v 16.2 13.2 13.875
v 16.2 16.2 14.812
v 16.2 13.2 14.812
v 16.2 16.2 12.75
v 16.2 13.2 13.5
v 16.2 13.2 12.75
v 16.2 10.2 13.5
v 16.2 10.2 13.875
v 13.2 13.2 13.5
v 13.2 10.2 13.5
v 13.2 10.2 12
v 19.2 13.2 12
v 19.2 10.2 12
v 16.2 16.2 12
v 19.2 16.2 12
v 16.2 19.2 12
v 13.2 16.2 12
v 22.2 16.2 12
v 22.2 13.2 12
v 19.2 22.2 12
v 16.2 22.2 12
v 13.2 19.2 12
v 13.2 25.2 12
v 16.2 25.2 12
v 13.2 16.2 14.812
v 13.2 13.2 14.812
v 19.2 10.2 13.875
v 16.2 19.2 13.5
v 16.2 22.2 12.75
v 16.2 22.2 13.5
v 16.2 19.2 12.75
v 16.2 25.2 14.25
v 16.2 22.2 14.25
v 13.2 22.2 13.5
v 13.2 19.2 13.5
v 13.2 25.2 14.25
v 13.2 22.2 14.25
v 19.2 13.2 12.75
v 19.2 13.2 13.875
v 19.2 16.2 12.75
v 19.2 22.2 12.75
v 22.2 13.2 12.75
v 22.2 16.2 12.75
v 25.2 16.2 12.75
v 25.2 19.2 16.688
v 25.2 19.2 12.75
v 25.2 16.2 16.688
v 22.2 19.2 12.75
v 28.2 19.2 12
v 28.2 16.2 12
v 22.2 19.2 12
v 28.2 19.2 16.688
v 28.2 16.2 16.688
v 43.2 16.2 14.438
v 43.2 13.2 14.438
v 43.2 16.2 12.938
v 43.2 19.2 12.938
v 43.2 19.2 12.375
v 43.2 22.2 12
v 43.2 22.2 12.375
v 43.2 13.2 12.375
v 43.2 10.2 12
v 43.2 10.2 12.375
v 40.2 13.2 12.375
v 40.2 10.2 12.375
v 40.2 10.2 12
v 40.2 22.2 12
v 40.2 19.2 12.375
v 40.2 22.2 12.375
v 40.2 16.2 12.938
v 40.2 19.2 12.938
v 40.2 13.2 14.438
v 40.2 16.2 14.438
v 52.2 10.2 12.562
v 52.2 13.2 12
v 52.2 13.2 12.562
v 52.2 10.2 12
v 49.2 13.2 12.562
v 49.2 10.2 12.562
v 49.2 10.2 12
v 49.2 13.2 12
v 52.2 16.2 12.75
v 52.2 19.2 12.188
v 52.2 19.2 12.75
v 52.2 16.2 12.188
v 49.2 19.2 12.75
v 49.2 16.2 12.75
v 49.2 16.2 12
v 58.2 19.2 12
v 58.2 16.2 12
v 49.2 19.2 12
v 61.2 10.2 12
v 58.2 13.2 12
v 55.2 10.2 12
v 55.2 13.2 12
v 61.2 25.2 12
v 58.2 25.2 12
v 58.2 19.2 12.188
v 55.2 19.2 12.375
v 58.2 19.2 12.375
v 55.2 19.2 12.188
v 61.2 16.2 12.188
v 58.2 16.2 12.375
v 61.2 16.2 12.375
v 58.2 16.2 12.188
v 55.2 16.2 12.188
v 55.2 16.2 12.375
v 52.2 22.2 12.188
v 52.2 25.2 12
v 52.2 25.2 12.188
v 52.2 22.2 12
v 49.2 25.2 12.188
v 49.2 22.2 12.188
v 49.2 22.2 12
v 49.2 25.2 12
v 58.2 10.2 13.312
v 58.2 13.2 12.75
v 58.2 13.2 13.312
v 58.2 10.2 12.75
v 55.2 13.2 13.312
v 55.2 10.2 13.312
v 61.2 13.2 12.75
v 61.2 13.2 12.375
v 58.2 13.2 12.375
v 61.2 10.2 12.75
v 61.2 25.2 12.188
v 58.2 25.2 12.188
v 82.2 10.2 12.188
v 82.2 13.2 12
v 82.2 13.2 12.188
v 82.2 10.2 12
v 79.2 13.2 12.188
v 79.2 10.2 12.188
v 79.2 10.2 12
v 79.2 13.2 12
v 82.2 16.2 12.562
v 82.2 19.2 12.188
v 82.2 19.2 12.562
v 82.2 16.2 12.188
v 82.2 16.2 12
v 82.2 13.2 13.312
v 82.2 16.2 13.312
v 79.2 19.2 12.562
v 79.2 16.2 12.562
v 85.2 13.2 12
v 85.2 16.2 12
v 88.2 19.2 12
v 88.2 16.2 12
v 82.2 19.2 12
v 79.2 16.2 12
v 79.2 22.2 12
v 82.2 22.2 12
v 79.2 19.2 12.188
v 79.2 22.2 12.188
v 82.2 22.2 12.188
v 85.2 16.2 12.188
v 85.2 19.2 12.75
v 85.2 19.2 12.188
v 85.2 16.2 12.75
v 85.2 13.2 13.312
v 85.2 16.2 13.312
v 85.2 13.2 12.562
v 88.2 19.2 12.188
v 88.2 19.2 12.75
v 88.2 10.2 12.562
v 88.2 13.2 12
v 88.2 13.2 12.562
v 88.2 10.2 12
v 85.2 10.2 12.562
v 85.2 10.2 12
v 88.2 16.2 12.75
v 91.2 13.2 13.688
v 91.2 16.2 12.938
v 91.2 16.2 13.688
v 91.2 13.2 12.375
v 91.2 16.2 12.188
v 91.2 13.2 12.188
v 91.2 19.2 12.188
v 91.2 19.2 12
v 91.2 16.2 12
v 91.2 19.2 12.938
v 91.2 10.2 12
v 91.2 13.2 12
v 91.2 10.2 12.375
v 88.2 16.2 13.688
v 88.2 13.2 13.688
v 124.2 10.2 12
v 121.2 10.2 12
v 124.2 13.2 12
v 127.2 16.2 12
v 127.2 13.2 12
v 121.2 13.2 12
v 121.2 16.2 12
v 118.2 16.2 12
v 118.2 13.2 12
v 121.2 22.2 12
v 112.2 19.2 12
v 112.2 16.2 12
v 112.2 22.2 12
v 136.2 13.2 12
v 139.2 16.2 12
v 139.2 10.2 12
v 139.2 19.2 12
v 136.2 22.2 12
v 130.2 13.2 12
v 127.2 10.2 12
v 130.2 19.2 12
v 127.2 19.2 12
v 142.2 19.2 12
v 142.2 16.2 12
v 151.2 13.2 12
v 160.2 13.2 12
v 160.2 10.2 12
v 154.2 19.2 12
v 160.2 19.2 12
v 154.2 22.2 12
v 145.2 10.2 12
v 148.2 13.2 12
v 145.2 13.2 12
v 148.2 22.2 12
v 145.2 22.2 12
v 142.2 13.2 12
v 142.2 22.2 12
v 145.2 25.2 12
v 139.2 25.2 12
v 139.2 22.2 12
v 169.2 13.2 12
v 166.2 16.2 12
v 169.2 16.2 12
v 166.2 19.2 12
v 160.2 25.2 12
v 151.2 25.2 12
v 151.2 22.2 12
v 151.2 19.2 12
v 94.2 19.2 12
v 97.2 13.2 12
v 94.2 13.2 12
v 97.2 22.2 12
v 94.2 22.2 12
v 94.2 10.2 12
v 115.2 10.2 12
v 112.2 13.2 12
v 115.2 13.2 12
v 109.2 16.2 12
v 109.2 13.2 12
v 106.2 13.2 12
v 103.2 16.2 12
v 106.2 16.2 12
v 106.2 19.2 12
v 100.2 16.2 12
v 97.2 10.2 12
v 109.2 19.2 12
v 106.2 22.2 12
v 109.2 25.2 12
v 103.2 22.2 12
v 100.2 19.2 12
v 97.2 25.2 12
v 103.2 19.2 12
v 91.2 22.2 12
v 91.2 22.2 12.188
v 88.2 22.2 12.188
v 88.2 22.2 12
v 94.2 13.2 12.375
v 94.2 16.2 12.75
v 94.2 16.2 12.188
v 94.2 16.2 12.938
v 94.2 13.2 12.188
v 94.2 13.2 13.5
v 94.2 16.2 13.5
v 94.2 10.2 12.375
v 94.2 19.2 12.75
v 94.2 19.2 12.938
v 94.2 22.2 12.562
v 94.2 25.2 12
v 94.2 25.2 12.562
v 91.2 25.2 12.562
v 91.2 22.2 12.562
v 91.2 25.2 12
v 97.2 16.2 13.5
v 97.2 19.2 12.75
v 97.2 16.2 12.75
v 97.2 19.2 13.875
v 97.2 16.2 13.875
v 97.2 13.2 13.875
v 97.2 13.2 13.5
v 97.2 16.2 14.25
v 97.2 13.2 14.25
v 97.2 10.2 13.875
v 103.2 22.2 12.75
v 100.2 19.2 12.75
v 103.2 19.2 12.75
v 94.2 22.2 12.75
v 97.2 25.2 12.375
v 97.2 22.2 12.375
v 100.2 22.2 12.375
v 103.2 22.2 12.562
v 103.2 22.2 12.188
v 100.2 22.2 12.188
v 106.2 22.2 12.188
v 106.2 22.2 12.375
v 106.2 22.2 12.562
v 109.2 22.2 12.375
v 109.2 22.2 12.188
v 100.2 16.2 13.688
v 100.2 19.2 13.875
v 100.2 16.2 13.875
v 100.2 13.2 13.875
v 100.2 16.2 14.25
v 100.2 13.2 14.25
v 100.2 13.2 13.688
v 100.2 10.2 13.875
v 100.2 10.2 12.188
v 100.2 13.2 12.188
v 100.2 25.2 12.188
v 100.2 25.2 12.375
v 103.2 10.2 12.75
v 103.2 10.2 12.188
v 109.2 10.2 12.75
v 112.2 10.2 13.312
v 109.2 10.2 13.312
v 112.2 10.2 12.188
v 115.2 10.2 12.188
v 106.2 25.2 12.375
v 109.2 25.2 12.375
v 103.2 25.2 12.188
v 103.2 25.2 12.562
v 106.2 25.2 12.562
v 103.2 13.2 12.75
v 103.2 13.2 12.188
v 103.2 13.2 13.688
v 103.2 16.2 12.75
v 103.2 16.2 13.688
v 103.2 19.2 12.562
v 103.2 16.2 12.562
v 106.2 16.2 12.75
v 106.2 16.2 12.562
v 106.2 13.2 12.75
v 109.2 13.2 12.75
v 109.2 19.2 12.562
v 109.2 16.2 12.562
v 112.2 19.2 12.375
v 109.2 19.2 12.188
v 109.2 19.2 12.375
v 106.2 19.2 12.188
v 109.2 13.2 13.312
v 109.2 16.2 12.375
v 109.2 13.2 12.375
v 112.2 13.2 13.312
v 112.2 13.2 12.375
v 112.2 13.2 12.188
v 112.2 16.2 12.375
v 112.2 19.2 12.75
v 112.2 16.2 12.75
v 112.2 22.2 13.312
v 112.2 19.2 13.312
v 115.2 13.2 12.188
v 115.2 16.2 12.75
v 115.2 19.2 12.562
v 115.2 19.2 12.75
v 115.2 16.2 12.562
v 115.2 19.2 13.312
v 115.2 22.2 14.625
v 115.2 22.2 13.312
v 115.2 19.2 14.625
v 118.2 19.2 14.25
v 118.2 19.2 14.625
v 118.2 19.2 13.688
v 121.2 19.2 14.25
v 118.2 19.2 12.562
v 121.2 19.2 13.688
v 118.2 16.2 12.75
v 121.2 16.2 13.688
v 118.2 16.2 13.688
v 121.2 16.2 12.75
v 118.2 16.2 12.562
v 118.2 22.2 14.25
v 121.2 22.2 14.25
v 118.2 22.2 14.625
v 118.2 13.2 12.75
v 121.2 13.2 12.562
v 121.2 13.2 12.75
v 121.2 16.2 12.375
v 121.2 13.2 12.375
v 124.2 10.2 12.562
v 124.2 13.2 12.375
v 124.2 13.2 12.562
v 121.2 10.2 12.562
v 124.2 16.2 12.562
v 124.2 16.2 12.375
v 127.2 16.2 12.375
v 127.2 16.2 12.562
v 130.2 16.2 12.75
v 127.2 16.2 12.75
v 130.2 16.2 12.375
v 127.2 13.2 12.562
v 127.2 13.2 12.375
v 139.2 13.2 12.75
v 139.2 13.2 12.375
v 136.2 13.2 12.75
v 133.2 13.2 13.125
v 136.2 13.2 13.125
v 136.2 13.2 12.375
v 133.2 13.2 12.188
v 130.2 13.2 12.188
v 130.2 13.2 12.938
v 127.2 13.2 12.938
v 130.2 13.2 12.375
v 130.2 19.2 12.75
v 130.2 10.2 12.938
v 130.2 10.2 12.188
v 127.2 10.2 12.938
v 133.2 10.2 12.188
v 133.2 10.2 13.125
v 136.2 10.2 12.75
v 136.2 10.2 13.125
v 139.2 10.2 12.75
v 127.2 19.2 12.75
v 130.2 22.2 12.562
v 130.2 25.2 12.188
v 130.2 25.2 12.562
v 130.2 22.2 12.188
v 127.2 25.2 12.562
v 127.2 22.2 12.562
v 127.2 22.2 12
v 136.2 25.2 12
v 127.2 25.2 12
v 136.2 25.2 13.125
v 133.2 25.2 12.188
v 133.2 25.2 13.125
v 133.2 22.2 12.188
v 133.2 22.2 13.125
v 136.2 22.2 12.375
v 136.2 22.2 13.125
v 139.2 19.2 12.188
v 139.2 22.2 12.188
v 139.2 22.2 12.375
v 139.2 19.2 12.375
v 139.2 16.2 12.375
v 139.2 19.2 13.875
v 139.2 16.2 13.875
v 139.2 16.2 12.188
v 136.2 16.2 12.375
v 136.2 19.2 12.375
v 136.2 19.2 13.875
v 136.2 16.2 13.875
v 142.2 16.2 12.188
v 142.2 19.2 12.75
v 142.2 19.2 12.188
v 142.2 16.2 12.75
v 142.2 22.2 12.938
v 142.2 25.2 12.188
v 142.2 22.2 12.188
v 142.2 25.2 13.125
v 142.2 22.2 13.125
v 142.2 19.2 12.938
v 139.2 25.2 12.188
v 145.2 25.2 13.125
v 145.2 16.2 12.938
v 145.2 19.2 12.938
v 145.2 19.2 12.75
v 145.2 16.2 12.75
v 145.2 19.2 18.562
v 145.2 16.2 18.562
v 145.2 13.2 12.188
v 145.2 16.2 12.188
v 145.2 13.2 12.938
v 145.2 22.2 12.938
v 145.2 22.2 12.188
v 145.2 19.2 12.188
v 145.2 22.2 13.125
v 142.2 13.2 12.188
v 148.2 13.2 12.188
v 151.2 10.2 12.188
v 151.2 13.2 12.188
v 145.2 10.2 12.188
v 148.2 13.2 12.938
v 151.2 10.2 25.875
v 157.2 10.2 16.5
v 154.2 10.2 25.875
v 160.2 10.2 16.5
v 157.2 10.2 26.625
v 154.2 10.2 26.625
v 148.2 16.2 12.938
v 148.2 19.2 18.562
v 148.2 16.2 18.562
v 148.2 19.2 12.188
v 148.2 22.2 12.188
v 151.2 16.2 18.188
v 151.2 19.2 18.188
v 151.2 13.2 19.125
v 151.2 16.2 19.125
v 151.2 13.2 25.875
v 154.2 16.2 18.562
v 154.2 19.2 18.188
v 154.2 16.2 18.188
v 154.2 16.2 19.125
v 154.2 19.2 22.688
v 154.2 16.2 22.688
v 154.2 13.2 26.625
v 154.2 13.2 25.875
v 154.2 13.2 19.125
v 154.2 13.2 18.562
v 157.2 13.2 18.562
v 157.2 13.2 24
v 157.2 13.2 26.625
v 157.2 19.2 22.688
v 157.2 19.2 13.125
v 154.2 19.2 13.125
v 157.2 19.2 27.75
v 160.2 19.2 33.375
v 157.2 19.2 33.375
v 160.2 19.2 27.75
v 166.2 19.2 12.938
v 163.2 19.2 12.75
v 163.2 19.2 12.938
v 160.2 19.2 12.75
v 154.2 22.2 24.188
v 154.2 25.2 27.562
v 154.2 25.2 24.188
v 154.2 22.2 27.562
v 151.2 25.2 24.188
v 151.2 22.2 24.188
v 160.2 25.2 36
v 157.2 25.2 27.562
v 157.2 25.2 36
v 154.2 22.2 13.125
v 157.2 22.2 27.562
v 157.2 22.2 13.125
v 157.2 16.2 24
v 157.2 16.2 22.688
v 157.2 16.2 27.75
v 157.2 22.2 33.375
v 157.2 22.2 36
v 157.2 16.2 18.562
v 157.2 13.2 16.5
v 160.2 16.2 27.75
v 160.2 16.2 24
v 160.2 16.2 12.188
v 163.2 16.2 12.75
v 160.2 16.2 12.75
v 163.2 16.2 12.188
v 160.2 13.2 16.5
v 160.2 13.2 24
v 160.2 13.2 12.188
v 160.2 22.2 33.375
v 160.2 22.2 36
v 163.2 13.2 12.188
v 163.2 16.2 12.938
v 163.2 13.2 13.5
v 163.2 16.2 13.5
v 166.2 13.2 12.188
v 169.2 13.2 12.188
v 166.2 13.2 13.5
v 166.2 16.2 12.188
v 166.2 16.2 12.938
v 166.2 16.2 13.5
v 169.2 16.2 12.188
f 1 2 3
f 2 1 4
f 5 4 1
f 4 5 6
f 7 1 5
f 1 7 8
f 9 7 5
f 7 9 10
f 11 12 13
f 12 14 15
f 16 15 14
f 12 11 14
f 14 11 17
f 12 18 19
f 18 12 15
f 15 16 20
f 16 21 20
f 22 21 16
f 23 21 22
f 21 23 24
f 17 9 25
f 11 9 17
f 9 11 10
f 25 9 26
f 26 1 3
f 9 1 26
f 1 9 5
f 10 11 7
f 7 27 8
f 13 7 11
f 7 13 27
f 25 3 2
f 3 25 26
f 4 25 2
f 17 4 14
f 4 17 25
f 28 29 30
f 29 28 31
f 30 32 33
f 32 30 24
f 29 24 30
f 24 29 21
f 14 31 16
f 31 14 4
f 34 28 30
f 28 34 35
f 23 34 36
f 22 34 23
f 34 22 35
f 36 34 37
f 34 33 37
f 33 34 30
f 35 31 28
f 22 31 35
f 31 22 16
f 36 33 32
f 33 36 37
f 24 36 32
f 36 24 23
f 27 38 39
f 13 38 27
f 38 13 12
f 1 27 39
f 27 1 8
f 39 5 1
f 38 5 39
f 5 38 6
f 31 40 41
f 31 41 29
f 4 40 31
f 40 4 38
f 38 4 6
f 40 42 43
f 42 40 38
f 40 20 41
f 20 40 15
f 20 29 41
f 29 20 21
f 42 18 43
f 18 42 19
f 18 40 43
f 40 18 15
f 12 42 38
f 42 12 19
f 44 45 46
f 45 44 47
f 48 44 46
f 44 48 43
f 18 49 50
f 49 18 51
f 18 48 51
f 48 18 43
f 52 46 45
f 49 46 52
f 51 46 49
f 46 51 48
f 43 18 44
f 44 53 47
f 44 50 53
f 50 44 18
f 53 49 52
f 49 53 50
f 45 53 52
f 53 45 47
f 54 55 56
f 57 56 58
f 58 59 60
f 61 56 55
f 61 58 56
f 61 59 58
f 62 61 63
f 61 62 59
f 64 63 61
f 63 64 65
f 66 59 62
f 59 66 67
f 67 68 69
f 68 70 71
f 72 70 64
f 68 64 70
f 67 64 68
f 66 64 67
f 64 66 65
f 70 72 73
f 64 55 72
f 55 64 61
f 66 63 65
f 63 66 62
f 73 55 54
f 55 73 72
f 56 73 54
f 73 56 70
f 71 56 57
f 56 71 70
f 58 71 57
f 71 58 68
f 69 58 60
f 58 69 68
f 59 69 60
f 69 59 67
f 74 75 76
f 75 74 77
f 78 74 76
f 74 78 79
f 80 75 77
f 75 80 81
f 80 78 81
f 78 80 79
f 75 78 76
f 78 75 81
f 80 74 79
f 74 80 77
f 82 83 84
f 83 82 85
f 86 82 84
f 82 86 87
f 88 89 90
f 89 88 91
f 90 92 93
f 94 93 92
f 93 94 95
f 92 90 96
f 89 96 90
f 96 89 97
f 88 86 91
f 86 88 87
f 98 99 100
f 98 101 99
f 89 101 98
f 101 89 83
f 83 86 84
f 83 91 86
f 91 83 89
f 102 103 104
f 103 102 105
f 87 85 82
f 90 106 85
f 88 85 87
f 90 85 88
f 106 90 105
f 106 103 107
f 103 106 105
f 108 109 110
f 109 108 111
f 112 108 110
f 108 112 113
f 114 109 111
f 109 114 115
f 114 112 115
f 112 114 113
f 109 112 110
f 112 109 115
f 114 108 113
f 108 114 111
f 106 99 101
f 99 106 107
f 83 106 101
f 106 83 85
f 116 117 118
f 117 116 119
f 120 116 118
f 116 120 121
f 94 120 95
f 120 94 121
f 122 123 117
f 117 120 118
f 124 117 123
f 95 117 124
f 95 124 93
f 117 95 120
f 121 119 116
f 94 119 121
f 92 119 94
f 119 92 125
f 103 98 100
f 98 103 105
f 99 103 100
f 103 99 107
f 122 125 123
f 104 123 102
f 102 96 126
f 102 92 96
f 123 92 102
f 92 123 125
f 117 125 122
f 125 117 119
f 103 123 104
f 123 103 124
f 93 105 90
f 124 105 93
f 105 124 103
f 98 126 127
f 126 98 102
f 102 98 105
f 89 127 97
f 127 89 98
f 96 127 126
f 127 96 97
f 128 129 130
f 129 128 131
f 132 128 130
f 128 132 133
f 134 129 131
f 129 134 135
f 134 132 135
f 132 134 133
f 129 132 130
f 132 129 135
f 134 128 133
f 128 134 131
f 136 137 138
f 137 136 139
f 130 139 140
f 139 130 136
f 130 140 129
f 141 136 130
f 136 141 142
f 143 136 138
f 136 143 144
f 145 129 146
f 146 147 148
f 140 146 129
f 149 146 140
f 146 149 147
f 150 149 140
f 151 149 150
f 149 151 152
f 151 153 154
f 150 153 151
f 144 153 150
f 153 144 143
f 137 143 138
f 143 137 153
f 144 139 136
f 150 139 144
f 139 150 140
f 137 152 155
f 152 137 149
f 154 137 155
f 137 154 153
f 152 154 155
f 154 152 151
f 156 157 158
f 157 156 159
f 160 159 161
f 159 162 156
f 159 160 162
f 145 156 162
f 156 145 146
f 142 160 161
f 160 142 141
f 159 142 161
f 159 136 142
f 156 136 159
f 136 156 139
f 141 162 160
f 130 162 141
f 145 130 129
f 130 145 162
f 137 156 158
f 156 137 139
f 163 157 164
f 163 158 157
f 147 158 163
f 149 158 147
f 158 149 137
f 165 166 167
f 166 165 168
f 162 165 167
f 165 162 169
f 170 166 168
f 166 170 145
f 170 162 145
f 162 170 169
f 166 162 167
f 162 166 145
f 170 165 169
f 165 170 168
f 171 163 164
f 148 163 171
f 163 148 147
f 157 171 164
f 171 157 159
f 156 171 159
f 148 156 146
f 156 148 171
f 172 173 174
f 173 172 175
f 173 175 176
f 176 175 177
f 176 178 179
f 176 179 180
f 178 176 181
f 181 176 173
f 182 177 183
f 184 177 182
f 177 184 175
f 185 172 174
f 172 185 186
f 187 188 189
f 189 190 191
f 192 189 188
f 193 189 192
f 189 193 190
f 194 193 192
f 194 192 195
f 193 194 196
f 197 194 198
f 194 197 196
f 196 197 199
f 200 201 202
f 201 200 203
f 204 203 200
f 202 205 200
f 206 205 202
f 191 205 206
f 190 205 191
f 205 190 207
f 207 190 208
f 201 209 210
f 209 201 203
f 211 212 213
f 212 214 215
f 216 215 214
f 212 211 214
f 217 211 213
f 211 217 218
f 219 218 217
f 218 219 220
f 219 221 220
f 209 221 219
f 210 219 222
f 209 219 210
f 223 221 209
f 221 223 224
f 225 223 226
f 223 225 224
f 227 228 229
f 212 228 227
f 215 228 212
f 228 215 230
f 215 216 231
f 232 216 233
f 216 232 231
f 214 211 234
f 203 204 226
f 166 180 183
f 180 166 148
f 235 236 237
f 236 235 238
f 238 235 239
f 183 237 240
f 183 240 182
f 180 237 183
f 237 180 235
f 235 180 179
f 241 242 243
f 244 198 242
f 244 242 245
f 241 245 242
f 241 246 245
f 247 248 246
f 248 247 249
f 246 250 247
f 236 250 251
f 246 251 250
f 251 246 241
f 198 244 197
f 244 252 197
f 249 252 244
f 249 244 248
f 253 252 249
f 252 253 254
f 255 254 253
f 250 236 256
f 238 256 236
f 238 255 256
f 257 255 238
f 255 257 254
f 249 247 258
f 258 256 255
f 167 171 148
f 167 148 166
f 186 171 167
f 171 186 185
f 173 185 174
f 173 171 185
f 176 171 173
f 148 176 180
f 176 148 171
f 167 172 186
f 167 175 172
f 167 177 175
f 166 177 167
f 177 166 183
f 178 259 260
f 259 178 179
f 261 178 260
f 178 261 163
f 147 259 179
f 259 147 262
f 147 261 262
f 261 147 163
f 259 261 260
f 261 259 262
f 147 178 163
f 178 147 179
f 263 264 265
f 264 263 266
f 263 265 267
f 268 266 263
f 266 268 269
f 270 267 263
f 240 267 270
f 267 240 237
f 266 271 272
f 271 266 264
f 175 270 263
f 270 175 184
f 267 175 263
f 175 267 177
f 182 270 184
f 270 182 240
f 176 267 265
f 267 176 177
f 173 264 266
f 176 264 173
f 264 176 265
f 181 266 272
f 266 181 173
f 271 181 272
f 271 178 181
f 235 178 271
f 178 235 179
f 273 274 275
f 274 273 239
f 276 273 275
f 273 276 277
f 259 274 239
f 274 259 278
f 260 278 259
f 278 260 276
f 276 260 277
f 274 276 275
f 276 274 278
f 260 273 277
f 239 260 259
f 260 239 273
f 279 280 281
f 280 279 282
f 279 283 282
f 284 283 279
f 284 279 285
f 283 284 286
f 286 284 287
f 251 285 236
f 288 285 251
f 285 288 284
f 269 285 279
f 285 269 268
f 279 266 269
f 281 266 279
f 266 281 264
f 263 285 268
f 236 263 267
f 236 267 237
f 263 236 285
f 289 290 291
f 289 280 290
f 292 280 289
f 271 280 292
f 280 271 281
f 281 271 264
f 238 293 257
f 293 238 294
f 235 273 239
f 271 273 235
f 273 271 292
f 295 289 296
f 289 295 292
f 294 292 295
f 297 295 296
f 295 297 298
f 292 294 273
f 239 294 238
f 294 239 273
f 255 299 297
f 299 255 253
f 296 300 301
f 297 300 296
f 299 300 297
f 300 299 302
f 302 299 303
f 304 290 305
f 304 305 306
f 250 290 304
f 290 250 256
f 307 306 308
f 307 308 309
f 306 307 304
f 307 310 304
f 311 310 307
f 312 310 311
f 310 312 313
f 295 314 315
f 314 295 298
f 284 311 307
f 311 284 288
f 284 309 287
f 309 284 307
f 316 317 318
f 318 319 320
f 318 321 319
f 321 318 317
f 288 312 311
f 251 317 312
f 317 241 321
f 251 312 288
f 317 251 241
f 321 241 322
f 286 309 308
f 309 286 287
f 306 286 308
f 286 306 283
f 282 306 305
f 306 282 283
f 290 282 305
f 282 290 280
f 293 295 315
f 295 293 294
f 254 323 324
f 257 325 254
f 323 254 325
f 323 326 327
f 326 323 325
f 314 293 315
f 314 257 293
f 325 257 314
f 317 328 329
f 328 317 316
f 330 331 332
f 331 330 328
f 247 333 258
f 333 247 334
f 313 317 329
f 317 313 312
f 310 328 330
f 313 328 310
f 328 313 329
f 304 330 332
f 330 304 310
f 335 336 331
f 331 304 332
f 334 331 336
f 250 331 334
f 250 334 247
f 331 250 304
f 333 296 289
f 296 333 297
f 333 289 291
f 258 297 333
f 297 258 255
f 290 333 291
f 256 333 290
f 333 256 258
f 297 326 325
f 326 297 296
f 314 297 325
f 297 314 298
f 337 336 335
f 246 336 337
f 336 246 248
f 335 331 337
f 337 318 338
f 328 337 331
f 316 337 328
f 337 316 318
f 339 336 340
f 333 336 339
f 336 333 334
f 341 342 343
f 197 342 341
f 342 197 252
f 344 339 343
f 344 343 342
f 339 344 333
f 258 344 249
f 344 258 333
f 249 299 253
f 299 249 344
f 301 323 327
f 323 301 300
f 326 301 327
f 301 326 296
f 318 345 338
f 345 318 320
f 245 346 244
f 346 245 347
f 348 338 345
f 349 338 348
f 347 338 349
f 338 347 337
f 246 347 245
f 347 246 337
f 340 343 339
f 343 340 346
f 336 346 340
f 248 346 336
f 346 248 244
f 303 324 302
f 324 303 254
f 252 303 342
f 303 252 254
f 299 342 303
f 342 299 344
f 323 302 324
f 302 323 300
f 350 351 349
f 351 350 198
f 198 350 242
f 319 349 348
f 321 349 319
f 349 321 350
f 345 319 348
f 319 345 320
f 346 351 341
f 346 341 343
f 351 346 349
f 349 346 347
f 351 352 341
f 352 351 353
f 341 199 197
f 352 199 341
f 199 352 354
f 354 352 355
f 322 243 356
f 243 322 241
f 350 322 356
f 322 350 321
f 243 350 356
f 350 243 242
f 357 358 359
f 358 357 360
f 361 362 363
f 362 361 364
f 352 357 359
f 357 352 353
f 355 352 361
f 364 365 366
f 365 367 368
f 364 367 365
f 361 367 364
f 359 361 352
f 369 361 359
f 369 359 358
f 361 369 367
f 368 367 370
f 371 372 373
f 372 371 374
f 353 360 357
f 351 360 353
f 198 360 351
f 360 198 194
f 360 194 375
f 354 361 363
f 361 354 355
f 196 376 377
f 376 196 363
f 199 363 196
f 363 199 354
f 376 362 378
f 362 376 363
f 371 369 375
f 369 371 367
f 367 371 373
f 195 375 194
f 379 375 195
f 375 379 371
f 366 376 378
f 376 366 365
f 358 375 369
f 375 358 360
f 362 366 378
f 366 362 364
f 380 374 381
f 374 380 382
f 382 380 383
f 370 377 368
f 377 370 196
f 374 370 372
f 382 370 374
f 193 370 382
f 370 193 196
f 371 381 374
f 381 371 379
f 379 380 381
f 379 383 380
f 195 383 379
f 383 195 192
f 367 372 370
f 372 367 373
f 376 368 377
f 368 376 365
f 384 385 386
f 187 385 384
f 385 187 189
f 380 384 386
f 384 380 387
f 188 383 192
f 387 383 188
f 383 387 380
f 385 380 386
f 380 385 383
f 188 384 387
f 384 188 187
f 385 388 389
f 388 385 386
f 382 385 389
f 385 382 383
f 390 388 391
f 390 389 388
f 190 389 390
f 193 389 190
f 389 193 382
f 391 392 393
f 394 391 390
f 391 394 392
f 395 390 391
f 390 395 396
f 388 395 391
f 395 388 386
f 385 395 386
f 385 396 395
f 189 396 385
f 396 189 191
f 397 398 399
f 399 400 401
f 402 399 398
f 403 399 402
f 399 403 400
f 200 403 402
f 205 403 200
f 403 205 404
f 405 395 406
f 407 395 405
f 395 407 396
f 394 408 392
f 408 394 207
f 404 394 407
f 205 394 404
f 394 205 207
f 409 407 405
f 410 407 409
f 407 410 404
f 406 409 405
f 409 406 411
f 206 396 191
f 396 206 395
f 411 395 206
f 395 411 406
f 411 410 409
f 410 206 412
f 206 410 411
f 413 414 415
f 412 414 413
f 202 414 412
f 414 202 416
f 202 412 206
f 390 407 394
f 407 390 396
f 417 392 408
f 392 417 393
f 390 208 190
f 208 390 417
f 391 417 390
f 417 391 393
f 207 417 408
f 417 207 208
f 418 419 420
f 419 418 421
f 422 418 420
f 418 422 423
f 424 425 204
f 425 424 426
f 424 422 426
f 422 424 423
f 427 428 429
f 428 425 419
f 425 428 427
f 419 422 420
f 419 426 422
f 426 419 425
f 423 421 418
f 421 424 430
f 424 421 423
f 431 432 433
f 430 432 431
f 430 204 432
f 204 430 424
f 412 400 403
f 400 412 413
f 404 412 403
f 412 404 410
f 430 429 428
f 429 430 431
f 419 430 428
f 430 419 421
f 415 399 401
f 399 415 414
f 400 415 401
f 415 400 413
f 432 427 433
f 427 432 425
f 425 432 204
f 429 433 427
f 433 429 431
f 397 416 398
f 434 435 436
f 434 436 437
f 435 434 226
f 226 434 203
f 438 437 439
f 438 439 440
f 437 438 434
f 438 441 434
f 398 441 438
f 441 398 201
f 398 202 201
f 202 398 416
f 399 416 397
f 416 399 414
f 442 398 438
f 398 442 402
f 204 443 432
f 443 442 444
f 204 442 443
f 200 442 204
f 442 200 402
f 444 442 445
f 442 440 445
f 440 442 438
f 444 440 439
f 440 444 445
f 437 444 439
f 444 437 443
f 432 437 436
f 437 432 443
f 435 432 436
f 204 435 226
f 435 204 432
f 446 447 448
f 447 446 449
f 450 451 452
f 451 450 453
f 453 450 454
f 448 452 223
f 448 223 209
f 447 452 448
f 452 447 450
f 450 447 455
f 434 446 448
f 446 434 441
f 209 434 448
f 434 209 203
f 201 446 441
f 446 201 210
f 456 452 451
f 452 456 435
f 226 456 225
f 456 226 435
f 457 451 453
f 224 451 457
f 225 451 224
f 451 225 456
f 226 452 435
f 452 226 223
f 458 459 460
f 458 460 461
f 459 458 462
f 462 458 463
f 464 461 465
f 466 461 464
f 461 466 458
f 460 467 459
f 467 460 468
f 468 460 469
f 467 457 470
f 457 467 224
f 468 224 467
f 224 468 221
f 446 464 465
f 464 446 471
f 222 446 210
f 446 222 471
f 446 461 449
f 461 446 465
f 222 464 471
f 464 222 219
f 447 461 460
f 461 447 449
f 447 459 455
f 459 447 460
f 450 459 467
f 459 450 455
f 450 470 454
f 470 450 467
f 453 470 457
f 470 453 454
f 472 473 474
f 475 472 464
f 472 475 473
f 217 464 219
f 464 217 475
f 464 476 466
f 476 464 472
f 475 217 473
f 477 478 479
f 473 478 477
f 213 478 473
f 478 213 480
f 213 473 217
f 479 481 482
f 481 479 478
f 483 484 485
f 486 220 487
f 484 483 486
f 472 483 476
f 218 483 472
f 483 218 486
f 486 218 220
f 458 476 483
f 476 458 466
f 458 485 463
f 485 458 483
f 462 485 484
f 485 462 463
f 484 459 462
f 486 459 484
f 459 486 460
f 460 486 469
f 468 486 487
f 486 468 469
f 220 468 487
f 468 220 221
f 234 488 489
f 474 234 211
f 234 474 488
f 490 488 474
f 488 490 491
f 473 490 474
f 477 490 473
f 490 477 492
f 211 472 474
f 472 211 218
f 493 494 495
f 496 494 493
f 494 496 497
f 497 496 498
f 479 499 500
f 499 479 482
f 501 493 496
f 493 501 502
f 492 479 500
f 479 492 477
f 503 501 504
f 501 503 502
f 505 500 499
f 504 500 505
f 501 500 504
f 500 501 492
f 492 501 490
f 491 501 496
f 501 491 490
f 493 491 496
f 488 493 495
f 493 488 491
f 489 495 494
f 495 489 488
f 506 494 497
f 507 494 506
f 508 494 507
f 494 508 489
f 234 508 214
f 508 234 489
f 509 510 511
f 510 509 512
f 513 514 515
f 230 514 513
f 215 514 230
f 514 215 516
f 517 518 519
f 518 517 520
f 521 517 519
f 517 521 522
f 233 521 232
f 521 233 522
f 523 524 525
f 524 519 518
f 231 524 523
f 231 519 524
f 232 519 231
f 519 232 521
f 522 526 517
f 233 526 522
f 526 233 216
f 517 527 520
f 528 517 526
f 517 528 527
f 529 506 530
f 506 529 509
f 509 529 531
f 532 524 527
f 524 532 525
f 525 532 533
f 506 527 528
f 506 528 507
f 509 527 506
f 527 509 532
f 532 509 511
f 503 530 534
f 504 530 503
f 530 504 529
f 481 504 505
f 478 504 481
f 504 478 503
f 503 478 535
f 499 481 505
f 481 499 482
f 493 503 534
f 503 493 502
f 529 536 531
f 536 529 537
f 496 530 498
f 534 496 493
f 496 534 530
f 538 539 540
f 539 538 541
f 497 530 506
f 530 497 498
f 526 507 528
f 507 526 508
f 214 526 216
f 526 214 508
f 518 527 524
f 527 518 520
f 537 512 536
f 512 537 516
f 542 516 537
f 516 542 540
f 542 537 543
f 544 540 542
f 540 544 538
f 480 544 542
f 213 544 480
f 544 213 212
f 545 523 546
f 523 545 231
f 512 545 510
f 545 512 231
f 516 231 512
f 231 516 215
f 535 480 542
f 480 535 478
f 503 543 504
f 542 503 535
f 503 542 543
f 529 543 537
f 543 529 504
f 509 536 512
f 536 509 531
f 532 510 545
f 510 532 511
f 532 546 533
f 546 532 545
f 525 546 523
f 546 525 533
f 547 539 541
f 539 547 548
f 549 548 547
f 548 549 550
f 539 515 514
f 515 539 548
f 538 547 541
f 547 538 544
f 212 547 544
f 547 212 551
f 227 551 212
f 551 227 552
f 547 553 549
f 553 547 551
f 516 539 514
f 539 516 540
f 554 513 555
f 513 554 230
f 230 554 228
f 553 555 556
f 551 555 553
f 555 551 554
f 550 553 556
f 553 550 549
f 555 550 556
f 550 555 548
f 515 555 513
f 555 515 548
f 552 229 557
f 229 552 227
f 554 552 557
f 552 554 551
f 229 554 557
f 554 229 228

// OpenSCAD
union() {
	translate(v = [13.200000000000001, 10.200000000000001, 12.0]) {
		cube(size = [3.0, 3.0, 1.5]);
	}
	translate(v = [13.200000000000001, 13.200000000000001, 12.0]) {
		cube(size = [3.0, 3.0, 2.8125]);
	}
	translate(v = [13.200000000000001, 19.200000000000003, 12.0]) {
		cube(size = [3.0, 3.0, 1.5]);
	}
	translate(v = [13.200000000000001, 22.200000000000003, 12.0]) {
		cube(size = [3.0, 3.0, 2.25]);
	}
	translate(v = [16.200000000000003, 10.200000000000001, 12.0]) {
		cube(size = [3.0, 3.0, 1.875]);
	}
	translate(v = [16.200000000000003, 13.200000000000001, 12.0]) {
		cube(size = [3.0, 3.0, 0.75]);
	}
	translate(v = [16.200000000000003, 16.200000000000003, 12.0]) {
		cube(size = [3.0, 3.0, 0.75]);
	}
	translate(v = [16.200000000000003, 19.200000000000003, 12.0]) {
		cube(size = [3.0, 3.0, 0.75]);
	}
	translate(v = [19.200000000000003, 13.200000000000001, 12.0]) {
		cube(size = [3.0, 3.0, 0.75]);
	}
	translate(v = [22.200000000000003, 16.200000000000003, 12.0]) {
		cube(size = [3.0, 3.0, 0.75]);
	}
	translate(v = [25.200000000000003, 16.200000000000003, 12.0]) {
		cube(size = [3.0, 3.0, 4.6875]);
	}
	translate(v = [40.2, 10.200000000000001, 12.0]) {
		cube(size = [3.0, 3.0, 0.375]);
	}
	translate(v = [40.2, 13.200000000000001, 12.0]) {
		cube(size = [3.0, 3.0, 2.4375]);
	}
	translate(v = [40.2, 16.200000000000003, 12.0]) {
		cube(size = [3.0, 3.0, 0.9375]);
	}
	translate(v = [40.2, 19.200000000000003, 12.0]) {
		cube(size = [3.0, 3.0, 0.375]);
	}
	translate(v = [49.2, 10.200000000000001, 12.0]) {
		cube(size = [3.0, 3.0, 0.5625]);
	}
	translate(v = [49.2, 16.200000000000003, 12.0]) {
		cube(size = [3.0, 3.0, 0.75]);
	}
	translate(v = [49.2, 22.200000000000003, 12.0]) {
		cube(size = [3.0, 3.0, 0.1875]);
	}
	translate(v = [52.2, 16.200000000000003, 12.0]) {
		cube(size = [3.0, 3.0, 0.1875]);
	}
	translate(v = [55.2, 10.200000000000001, 12.0]) {
		cube(size = [3.0, 3.0, 1.3125]);
	}
	translate(v = [55.2, 16.200000000000003, 12.0]) {
		cube(size = [3.0, 3.0, 0.375]);
	}
	translate(v = [58.2, 10.200000000000001, 12.0]) {
		cube(size = [3.0, 3.0, 0.75]);
	}
	translate(v = [58.2, 13.200000000000001, 12.0]) {
		cube(size = [3.0, 3.0, 0.375]);
	}
	translate(v = [58.2, 16.200000000000003, 12.0]) {
		cube(size = [3.0, 3.0, 0.1875]);
	}
	translate(v = [58.2, 19.200000000000003, 12.0]) {
		cube(size = [3.0, 3.0, 0.1875]);
	}
	translate(v = [58.2, 22.200000000000003, 12.0]) {
		cube(size = [3.0, 3.0, 0.1875]);
	}
	translate(v = [79.2, 10.200000000000001, 12.0]) {
		cube(size = [3.0, 3.0, 0.1875]);
	}
	translate(v = [79.2, 16.200000000000003, 12.0]) {
		cube(size = [3.0, 3.0, 0.5625]);
	}
	translate(v = [79.2, 19.200000000000003, 12.0]) {
		cube(size = [3.0, 3.0, 0.1875]);
	}
	translate(v = [82.2, 13.200000000000001, 12.0]) {
		cube(size = [3.0, 3.0, 1.3125]);
	}
	translate(v = [82.2, 16.200000000000003, 12.0]) {
		cube(size = [3.0, 3.0, 0.1875]);
	}
	translate(v = [85.2, 10.200000000000001, 12.0]) {
		cube(size = [3.0, 3.0, 0.5625]);
	}
	translate(v = [85.2, 16.200000000000003, 12.0]) {
		cube(size = [3.0, 3.0, 0.75]);
	}
	translate(v = [88.2, 13.200000000000001, 12.0]) {
		cube(size = [3.0, 3.0, 1.6875]);
	}
	translate(v = [88.2, 19.200000000000003, 12.0]) {
		cube(size = [3.0, 3.0, 0.1875]);
	}
	translate(v = [91.2, 10.200000000000001, 12.0]) {
		cube(size = [3.0, 3.0, 0.375]);
	}
	translate(v = [91.2, 13.200000000000001, 12.0]) {
		cube(size = [3.0, 3.0, 0.1875]);
	}
	translate(v = [91.2, 16.200000000000003, 12.0]) {
		cube(size = [3.0, 3.0, 0.9375]);
	}
	translate(v = [91.2, 22.200000000000003, 12.0]) {
		cube(size = [3.0, 3.0, 0.5625]);
	}
	translate(v = [94.2, 13.200000000000001, 12.0]) {
		cube(size = [3.0, 3.0, 1.5]);
	}
	translate(v = [94.2, 16.200000000000003, 12.0]) {
		cube(size = [3.0, 3.0, 0.75]);
	}
	translate(v = [94.2, 19.200000000000003, 12.0]) {
		cube(size = [3.0, 3.0, 0.75]);
	}
	translate(v = [97.2, 10.200000000000001, 12.0]) {
		cube(size = [3.0, 3.0, 1.875]);
	}
	translate(v = [97.2, 13.200000000000001, 12.0]) {
		cube(size = [3.0, 3.0, 2.25]);
	}
	translate(v = [97.2, 16.200000000000003, 12.0]) {
		cube(size = [3.0, 3.0, 1.875]);
	}
	translate(v = [97.2, 19.200000000000003, 12.0]) {
		cube(size = [3.0, 3.0, 0.75]);
	}
	translate(v = [97.2, 22.200000000000003, 12.0]) {
		cube(size = [3.0, 3.0, 0.375]);
	}
	translate(v = [100.2, 10.200000000000001, 12.0]) {
		cube(size = [3.0, 3.0, 0.1875]);
	}
	translate(v = [100.2, 13.200000000000001, 12.0]) {
		cube(size = [3.0, 3.0, 1.6875]);
	}
	translate(v = [100.2, 19.200000000000003, 12.0]) {
		cube(size = [3.0, 3.0, 0.75]);
	}
	translate(v = [100.2, 22.200000000000003, 12.0]) {
		cube(size = [3.0, 3.0, 0.1875]);
	}
	translate(v = [103.2, 10.200000000000001, 12.0]) {
		cube(size = [3.0, 3.0, 0.75]);
	}
	translate(v = [103.2, 13.200000000000001, 12.0]) {
		cube(size = [3.0, 3.0, 0.75]);
	}
	translate(v = [103.2, 16.200000000000003, 12.0]) {
		cube(size = [3.0, 3.0, 0.5625]);
	}
	translate(v = [103.2, 22.200000000000003, 12.0]) {
		cube(size = [3.0, 3.0, 0.5625]);
	}
	translate(v = [106.2, 10.200000000000001, 12.0]) {
		cube(size = [3.0, 3.0, 0.75]);
	}
	translate(v = [106.2, 16.200000000000003, 12.0]) {
		cube(size = [3.0, 3.0, 0.5625]);
	}
	translate(v = [106.2, 19.200000000000003, 12.0]) {
		cube(size = [3.0, 3.0, 0.1875]);
	}
	translate(v = [106.2, 22.200000000000003, 12.0]) {
		cube(size = [3.0, 3.0, 0.375]);
	}
	translate(v = [109.2, 10.200000000000001, 12.0]) {
		cube(size = [3.0, 3.0, 1.3125]);
	}
	translate(v = [109.2, 13.200000000000001, 12.0]) {
		cube(size = [3.0, 3.0, 0.375]);
	}
	translate(v = [109.2, 16.200000000000003, 12.0]) {
		cube(size = [3.0, 3.0, 0.375]);
	}
	translate(v = [112.2, 10.200000000000001, 12.0]) {
		cube(size = [3.0, 3.0, 0.1875]);
	}
	translate(v = [112.2, 16.200000000000003, 12.0]) {
		cube(size = [3.0, 3.0, 0.75]);
	}
	translate(v = [112.2, 19.200000000000003, 12.0]) {
		cube(size = [3.0, 3.0, 1.3125]);
	}
	translate(v = [115.2, 16.200000000000003, 12.0]) {
		cube(size = [3.0, 3.0, 0.5625]);
	}
	translate(v = [115.2, 19.200000000000003, 12.0]) {
		cube(size = [3.0, 3.0, 2.625]);
	}
	translate(v = [118.2, 13.200000000000001, 12.0]) {
		cube(size = [3.0, 3.0, 0.75]);
	}
	translate(v = [118.2, 16.200000000000003, 12.0]) {
		cube(size = [3.0, 3.0, 1.6875]);
	}
	translate(v = [118.2, 19.200000000000003, 12.0]) {
		cube(size = [3.0, 3.0, 2.25]);
	}
	translate(v = [121.2, 10.200000000000001, 12.0]) {
		cube(size = [3.0, 3.0, 0.5625]);
	}
	translate(v = [121.2, 13.200000000000001, 12.0]) {
		cube(size = [3.0, 3.0, 0.375]);
	}
	translate(v = [124.2, 13.200000000000001, 12.0]) {
		cube(size = [3.0, 3.0, 0.5625]);
	}
	translate(v = [127.2, 10.200000000000001, 12.0]) {
		cube(size = [3.0, 3.0, 0.9375]);
	}
	translate(v = [127.2, 13.200000000000001, 12.0]) {
		cube(size = [3.0, 3.0, 0.375]);
	}
	translate(v = [127.2, 16.200000000000003, 12.0]) {
		cube(size = [3.0, 3.0, 0.75]);
	}
	translate(v = [127.2, 22.200000000000003, 12.0]) {
		cube(size = [3.0, 3.0, 0.5625]);
	}
	translate(v = [130.2, 10.200000000000001, 12.0]) {
		cube(size = [3.0, 3.0, 0.1875]);
	}
	translate(v = [130.2, 22.200000000000003, 12.0]) {
		cube(size = [3.0, 3.0, 0.1875]);
	}
	translate(v = [133.2, 10.200000000000001, 12.0]) {
		cube(size = [3.0, 3.0, 1.125]);
	}
	translate(v = [133.2, 22.200000000000003, 12.0]) {
		cube(size = [3.0, 3.0, 1.125]);
	}
	translate(v = [136.2, 10.200000000000001, 12.0]) {
		cube(size = [3.0, 3.0, 0.75]);
	}
	translate(v = [136.2, 13.200000000000001, 12.0]) {
		cube(size = [3.0, 3.0, 0.375]);
	}
	translate(v = [136.2, 16.200000000000003, 12.0]) {
		cube(size = [3.0, 3.0, 1.875]);
	}
	translate(v = [136.2, 19.200000000000003, 12.0]) {
		cube(size = [3.0, 3.0, 0.375]);
	}
	translate(v = [139.2, 16.200000000000003, 12.0]) {
		cube(size = [3.0, 3.0, 0.1875]);
	}
	translate(v = [139.2, 22.200000000000003, 12.0]) {
		cube(size = [3.0, 3.0, 0.1875]);
	}
	translate(v = [142.2, 13.200000000000001, 12.0]) {
		cube(size = [3.0, 3.0, 0.1875]);
	}
	translate(v = [142.2, 16.200000000000003, 12.0]) {
		cube(size = [3.0, 3.0, 0.75]);
	}
	translate(v = [142.2, 19.200000000000003, 12.0]) {
		cube(size = [3.0, 3.0, 0.9375]);
	}
	translate(v = [142.2, 22.200000000000003, 12.0]) {
		cube(size = [3.0, 3.0, 1.125]);
	}
	translate(v = [145.2, 10.200000000000001, 12.0]) {
		cube(size = [3.0, 3.0, 0.1875]);
	}
	translate(v = [145.2, 13.200000000000001, 12.0]) {
		cube(size = [3.0, 3.0, 0.9375]);
	}
	translate(v = [145.2, 16.200000000000003, 12.0]) {
		cube(size = [3.0, 3.0, 6.5625]);
	}
	translate(v = [145.2, 19.200000000000003, 12.0]) {
		cube(size = [3.0, 3.0, 0.1875]);
	}
	translate(v = [148.2, 10.200000000000001, 12.0]) {
		cube(size = [3.0, 3.0, 0.1875]);
	}
	translate(v = [151.2, 10.200000000000001, 12.0]) {
		cube(size = [3.0, 3.0, 13.875]);
	}
	translate(v = [151.2, 13.200000000000001, 12.0]) {
		cube(size = [3.0, 3.0, 7.125]);
	}
	translate(v = [151.2, 16.200000000000003, 12.0]) {
		cube(size = [3.0, 3.0, 6.1875]);
	}
	translate(v = [151.2, 22.200000000000003, 12.0]) {
		cube(size = [3.0, 3.0, 12.1875]);
	}
	translate(v = [154.2, 10.200000000000001, 12.0]) {
		cube(size = [3.0, 3.0, 14.625]);
	}
	translate(v = [154.2, 13.200000000000001, 12.0]) {
		cube(size = [3.0, 3.0, 6.5625]);
	}
	translate(v = [154.2, 16.200000000000003, 12.0]) {
		cube(size = [3.0, 3.0, 10.6875]);
	}
	translate(v = [154.2, 19.200000000000003, 12.0]) {
		cube(size = [3.0, 3.0, 1.125]);
	}
	translate(v = [154.2, 22.200000000000003, 12.0]) {
		cube(size = [3.0, 3.0, 15.5625]);
	}
	translate(v = [157.2, 10.200000000000001, 12.0]) {
		cube(size = [3.0, 3.0, 4.5]);
	}
	translate(v = [157.2, 13.200000000000001, 12.0]) {
		cube(size = [3.0, 3.0, 12.0]);
	}
	translate(v = [157.2, 16.200000000000003, 12.0]) {
		cube(size = [3.0, 3.0, 15.75]);
	}
	translate(v = [157.2, 19.200000000000003, 12.0]) {
		cube(size = [3.0, 3.0, 21.375]);
	}
	translate(v = [157.2, 22.200000000000003, 12.0]) {
		cube(size = [3.0, 3.0, 24.0]);
	}
	translate(v = [160.2, 13.200000000000001, 12.0]) {
		cube(size = [3.0, 3.0, 0.1875]);
	}
	translate(v = [160.2, 16.200000000000003, 12.0]) {
		cube(size = [3.0, 3.0, 0.75]);
	}
	translate(v = [163.2, 13.200000000000001, 12.0]) {
		cube(size = [3.0, 3.0, 1.5]);
	}
	translate(v = [163.2, 16.200000000000003, 12.0]) {
		cube(size = [3.0, 3.0, 0.9375]);
	}
	translate(v = [166.2, 13.200000000000001, 12.0]) {
		cube(size = [3.0, 3.0, 0.1875]);
	}
}
